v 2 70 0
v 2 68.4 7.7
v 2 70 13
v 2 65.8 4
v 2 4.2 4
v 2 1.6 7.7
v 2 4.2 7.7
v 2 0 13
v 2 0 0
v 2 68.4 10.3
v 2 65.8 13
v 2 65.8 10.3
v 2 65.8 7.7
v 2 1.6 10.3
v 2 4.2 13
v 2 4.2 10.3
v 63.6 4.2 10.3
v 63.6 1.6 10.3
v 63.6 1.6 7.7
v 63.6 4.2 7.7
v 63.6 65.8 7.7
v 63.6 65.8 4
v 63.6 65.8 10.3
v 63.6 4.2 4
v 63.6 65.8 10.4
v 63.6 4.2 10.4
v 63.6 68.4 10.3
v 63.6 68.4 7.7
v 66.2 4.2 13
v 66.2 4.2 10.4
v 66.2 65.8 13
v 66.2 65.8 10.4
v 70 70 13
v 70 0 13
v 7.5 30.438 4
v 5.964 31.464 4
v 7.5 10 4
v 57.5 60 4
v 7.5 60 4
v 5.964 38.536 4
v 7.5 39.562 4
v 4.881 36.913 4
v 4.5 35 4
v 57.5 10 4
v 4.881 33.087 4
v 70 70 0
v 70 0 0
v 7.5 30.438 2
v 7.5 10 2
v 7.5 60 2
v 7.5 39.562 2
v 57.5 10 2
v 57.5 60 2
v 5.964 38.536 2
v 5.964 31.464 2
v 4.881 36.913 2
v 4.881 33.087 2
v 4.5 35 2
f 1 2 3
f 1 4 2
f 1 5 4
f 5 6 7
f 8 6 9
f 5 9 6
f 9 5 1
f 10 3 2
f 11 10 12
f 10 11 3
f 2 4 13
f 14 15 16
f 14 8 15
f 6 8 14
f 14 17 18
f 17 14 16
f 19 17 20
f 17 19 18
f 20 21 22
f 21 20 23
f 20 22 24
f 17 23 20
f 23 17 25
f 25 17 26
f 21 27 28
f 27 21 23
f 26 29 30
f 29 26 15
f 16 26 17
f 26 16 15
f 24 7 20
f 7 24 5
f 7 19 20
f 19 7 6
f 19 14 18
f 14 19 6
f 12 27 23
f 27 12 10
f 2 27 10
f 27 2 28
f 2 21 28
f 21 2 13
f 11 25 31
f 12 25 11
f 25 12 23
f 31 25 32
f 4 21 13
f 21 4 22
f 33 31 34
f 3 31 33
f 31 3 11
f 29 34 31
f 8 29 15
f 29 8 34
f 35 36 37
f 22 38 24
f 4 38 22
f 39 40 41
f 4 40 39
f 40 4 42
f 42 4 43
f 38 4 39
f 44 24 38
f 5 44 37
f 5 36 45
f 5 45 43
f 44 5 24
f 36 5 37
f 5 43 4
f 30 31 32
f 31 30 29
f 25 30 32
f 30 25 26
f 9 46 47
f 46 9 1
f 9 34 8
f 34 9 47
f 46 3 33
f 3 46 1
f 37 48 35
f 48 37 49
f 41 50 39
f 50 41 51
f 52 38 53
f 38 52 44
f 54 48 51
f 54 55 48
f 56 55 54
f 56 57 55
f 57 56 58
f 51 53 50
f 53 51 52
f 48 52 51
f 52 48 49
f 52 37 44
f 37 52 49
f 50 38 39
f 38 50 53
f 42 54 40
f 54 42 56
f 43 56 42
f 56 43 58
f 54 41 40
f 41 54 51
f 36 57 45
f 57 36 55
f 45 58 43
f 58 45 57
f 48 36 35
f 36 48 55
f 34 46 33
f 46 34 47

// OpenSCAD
// file: variables.scad
// ajmaker.pl oferuje dokładność 0.6 mm.
print_tolerance = 0.6; // mm

// 2 mm   - płyta kompozytowa
// 1.6 mm - szyba (http://szlachetnafotografia.com/kategoria/ambrotyp-kolodion/szybki-do-kolodionu-13x18cm)
photo_plate_height = 2 + print_tolerance;
photo_plate_width = 50;

// E-Mount flange distance. Distance between rear part
// of the lens mount on the lens (or front part of the lens 
// mount on the body) and the front of the photo plate.
e_mount_flange_distance = 18;

// Height of the circle lens mount.
lens_mount_height = 9; // mm

// Diameter of the circle lens mount.
lens_mount_width = 61;

// Width (along x axis) of the back (side) wall.
back_wall_width = 2;

outer_box_size = [70, 70, 13];

inner_box_size = [lens_mount_width,
                  lens_mount_width,
                  e_mount_flange_distance - lens_mount_height];

// Offset in relation to the outer box.
inner_box_offset = [back_wall_width,
                    (outer_box_size[1] - lens_mount_width) / 2,
                    outer_box_size[2]];
// file: shared.scad
include <variables.scad>;


//tripod_mount_file = "Easy 35 B2 Body.stl";

module SlideInRails(print_tolerance) {
    rail_width = 2;
    rail_height = 2;
    rail_distance_from_edge = - rail_height - 3;
    
    color("red")
    translate([0,
               0,
               rail_distance_from_edge - print_tolerance / 2]) {
        translate([0, -rail_width - print_tolerance, 0])
            cube(size=[lens_mount_width + print_tolerance,
                       rail_width + print_tolerance,
                       rail_height + print_tolerance]);
        translate([0, lens_mount_width + print_tolerance, 0])
            cube(size=[lens_mount_width + print_tolerance,
                       rail_width + print_tolerance,
                       rail_height + print_tolerance]);
    }
}

module BackWall() {
    color("black")
    translate([0,
               0,
               0])
        cube(size=[back_wall_width,
                   outer_box_size[1],
                   outer_box_size[2]]);
};

module LightCoverX(print_tolerance) {
    color("blue")
    translate([lens_mount_width + print_tolerance,
               0,
               - 2 - print_tolerance])
        cube(size=[2 + print_tolerance,
                   lens_mount_width + print_tolerance,
                   2 + print_tolerance]);
};


module CameraFrontWithoutLensMount(print_tolerance) {    
    difference() {
        union() {
            BackWall();
            
            translate(inner_box_offset - [0, print_tolerance / 2, 0]) {
                translate([0, 0, - inner_box_size[2]])
                    cube(size=inner_box_size
                              + [print_tolerance,
                                 print_tolerance,
                                 // No print tolerance on Z axis, because
                                 // one has already been applied on rails.
                                 // Doubling it on Z axis is dangerous
                                 // as could affect flange distance.
                                 0]);
                SlideInRails(print_tolerance);
                LightCoverX(print_tolerance);
            };
        }
    }
}

rear_lens_cap_file = "E-mount_rear_lenscap.STL";

module CameraFront() {
    difference() {
        union() {
            CameraFrontWithoutLensMount(0);
            
            // Height is ~ 9,00 mm.
            translate(inner_box_offset)
                 import(rear_lens_cap_file);
        }
        
        translate(inner_box_offset
                   + [lens_mount_width / 2,
                      lens_mount_width / 2,
                      0]) {
            cylinder(r1 = 21.5, r2 = 21.5, h = 4);
            translate([0, 0, -10]) 
                cylinder(r1 = 30, r2 = 22, h = 10);
        }
    }
}

module CameraBack() {
    difference() {        
        cube(size=outer_box_size);
        CameraFrontWithoutLensMount(print_tolerance);
    };
}

module CenteredOnBack(size) {
    translate(inner_box_offset + [(lens_mount_width - size) / 2,
                                  (lens_mount_width - size) / 2,
                                  -inner_box_size[2] - 2]) {
        children();
    }
}
// main file
include <shared.scad>;

difference() {
    CameraBack();
    
    CenteredOnBack(photo_plate_width) {
        color("purple")
        cube(size=[photo_plate_width,
                   photo_plate_width,
                   photo_plate_height]);
            
        // Placeholder for a finger (useful for removing a photo plate).
        translate([2,
                   photo_plate_width / 2,
                   0])
            cylinder(r1=5, r2=5, h=photo_plate_height);
                         
        /*color("pink")
        translate([photo_slot_width / 2 - 2,
                   photo_slot_width / 2 - 2,
                   -0.2])
            cube(size=[2, 2, 0.2]);*/
    }
 }
